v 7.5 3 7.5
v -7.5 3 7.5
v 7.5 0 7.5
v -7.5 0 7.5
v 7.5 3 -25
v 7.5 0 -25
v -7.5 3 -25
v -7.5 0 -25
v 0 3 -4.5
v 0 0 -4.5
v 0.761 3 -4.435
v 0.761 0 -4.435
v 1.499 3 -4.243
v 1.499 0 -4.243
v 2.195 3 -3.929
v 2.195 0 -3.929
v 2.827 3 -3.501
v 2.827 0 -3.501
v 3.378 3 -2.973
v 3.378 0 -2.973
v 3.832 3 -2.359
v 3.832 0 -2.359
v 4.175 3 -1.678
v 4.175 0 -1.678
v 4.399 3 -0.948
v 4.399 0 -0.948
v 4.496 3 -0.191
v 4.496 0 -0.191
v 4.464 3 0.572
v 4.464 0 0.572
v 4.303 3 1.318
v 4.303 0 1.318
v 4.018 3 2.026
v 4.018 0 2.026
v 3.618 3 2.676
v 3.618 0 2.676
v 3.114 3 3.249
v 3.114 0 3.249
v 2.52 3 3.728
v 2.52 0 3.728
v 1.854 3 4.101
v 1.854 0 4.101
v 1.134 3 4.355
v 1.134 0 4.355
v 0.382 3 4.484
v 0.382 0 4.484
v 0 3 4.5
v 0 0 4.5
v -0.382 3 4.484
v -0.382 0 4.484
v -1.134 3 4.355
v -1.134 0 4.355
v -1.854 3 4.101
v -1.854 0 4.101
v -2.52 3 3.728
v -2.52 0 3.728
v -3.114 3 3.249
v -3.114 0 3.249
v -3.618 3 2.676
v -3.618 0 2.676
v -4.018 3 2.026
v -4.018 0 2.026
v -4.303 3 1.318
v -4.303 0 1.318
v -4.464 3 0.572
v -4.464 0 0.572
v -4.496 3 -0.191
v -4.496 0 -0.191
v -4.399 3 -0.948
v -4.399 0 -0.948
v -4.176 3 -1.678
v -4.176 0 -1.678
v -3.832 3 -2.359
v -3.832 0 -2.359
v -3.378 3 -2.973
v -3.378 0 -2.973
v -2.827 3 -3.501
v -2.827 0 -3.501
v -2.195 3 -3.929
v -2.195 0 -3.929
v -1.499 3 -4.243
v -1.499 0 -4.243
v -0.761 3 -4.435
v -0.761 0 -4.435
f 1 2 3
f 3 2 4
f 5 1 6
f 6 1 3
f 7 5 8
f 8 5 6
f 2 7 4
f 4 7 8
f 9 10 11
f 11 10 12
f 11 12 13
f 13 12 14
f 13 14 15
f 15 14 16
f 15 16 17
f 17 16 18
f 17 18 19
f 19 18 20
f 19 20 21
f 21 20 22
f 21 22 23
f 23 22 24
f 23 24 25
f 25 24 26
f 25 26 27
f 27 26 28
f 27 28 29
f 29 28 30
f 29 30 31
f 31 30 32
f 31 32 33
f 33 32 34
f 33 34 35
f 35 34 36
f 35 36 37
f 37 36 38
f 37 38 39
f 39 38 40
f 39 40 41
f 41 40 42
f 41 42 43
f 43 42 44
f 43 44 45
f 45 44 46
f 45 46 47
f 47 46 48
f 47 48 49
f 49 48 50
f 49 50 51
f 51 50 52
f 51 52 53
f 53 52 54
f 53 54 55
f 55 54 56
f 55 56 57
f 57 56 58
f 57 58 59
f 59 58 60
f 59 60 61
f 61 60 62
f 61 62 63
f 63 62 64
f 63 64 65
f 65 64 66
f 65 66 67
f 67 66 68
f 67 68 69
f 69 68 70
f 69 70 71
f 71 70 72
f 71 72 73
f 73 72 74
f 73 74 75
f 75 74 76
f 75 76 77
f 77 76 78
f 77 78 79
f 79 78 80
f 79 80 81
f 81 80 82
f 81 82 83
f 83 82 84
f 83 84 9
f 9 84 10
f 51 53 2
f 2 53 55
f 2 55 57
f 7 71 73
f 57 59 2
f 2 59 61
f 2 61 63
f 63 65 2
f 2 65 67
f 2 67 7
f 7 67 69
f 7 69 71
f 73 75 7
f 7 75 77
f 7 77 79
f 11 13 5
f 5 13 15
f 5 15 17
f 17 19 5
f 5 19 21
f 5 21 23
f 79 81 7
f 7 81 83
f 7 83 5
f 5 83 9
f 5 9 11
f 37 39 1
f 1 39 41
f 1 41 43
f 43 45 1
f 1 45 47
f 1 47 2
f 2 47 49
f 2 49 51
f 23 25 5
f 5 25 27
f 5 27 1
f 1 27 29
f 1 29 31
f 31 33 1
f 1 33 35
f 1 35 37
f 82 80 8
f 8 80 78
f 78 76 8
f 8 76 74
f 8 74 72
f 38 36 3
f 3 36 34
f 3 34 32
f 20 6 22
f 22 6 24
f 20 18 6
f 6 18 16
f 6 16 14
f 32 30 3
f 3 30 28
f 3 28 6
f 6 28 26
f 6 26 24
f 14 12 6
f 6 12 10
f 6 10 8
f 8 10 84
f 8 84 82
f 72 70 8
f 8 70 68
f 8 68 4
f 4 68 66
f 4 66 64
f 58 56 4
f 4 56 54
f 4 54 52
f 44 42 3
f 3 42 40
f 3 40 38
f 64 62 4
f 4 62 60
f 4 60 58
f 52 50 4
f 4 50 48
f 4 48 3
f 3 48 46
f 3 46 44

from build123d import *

# Parameters (mm, degrees)
SKETCH_1_W      = 7.5
SKETCH_1_H      = 17.5
EXTRUDE_2_DEPTH = 3


with BuildPart() as part:
    # 草图1 → 凸台-拉伸2 (new body)
    # profile 1 of 3: a face of its own
    with BuildSketch(Plane(origin=(0, 0, 0), x_dir=(1, 0, 0), z_dir=(0, 1, 0))):
        Polygon((7.5, 7.5), (0, 7.5), (-7.5, 7.5), (-7.5, -7.5), (7.5, -7.5), align=None)
        with BuildLine():
            ThreePointArc((4.5, 0), (-3.181980515, -3.181980515), (0, 4.5))
            ThreePointArc((0, 4.5), (3.181980515, 3.181980515), (4.5, 0))
        make_face(mode=Mode.SUBTRACT)
    # profile 2 of 3: a face of its own
    with BuildSketch(Plane(origin=(0, 0, 0), x_dir=(1, 0, 0), z_dir=(0, 1, 0))):
        with Locations((-3.75, 16.25)):
            Rectangle(SKETCH_1_W, SKETCH_1_H)
    # profile 3 of 3: a face of its own
    with BuildSketch(Plane(origin=(0, 0, 0), x_dir=(1, 0, 0), z_dir=(0, 1, 0))):
        with Locations((3.75, 16.25)):
            Rectangle(SKETCH_1_W, SKETCH_1_H)
    extrude(amount=EXTRUDE_2_DEPTH)


solid = part.part
